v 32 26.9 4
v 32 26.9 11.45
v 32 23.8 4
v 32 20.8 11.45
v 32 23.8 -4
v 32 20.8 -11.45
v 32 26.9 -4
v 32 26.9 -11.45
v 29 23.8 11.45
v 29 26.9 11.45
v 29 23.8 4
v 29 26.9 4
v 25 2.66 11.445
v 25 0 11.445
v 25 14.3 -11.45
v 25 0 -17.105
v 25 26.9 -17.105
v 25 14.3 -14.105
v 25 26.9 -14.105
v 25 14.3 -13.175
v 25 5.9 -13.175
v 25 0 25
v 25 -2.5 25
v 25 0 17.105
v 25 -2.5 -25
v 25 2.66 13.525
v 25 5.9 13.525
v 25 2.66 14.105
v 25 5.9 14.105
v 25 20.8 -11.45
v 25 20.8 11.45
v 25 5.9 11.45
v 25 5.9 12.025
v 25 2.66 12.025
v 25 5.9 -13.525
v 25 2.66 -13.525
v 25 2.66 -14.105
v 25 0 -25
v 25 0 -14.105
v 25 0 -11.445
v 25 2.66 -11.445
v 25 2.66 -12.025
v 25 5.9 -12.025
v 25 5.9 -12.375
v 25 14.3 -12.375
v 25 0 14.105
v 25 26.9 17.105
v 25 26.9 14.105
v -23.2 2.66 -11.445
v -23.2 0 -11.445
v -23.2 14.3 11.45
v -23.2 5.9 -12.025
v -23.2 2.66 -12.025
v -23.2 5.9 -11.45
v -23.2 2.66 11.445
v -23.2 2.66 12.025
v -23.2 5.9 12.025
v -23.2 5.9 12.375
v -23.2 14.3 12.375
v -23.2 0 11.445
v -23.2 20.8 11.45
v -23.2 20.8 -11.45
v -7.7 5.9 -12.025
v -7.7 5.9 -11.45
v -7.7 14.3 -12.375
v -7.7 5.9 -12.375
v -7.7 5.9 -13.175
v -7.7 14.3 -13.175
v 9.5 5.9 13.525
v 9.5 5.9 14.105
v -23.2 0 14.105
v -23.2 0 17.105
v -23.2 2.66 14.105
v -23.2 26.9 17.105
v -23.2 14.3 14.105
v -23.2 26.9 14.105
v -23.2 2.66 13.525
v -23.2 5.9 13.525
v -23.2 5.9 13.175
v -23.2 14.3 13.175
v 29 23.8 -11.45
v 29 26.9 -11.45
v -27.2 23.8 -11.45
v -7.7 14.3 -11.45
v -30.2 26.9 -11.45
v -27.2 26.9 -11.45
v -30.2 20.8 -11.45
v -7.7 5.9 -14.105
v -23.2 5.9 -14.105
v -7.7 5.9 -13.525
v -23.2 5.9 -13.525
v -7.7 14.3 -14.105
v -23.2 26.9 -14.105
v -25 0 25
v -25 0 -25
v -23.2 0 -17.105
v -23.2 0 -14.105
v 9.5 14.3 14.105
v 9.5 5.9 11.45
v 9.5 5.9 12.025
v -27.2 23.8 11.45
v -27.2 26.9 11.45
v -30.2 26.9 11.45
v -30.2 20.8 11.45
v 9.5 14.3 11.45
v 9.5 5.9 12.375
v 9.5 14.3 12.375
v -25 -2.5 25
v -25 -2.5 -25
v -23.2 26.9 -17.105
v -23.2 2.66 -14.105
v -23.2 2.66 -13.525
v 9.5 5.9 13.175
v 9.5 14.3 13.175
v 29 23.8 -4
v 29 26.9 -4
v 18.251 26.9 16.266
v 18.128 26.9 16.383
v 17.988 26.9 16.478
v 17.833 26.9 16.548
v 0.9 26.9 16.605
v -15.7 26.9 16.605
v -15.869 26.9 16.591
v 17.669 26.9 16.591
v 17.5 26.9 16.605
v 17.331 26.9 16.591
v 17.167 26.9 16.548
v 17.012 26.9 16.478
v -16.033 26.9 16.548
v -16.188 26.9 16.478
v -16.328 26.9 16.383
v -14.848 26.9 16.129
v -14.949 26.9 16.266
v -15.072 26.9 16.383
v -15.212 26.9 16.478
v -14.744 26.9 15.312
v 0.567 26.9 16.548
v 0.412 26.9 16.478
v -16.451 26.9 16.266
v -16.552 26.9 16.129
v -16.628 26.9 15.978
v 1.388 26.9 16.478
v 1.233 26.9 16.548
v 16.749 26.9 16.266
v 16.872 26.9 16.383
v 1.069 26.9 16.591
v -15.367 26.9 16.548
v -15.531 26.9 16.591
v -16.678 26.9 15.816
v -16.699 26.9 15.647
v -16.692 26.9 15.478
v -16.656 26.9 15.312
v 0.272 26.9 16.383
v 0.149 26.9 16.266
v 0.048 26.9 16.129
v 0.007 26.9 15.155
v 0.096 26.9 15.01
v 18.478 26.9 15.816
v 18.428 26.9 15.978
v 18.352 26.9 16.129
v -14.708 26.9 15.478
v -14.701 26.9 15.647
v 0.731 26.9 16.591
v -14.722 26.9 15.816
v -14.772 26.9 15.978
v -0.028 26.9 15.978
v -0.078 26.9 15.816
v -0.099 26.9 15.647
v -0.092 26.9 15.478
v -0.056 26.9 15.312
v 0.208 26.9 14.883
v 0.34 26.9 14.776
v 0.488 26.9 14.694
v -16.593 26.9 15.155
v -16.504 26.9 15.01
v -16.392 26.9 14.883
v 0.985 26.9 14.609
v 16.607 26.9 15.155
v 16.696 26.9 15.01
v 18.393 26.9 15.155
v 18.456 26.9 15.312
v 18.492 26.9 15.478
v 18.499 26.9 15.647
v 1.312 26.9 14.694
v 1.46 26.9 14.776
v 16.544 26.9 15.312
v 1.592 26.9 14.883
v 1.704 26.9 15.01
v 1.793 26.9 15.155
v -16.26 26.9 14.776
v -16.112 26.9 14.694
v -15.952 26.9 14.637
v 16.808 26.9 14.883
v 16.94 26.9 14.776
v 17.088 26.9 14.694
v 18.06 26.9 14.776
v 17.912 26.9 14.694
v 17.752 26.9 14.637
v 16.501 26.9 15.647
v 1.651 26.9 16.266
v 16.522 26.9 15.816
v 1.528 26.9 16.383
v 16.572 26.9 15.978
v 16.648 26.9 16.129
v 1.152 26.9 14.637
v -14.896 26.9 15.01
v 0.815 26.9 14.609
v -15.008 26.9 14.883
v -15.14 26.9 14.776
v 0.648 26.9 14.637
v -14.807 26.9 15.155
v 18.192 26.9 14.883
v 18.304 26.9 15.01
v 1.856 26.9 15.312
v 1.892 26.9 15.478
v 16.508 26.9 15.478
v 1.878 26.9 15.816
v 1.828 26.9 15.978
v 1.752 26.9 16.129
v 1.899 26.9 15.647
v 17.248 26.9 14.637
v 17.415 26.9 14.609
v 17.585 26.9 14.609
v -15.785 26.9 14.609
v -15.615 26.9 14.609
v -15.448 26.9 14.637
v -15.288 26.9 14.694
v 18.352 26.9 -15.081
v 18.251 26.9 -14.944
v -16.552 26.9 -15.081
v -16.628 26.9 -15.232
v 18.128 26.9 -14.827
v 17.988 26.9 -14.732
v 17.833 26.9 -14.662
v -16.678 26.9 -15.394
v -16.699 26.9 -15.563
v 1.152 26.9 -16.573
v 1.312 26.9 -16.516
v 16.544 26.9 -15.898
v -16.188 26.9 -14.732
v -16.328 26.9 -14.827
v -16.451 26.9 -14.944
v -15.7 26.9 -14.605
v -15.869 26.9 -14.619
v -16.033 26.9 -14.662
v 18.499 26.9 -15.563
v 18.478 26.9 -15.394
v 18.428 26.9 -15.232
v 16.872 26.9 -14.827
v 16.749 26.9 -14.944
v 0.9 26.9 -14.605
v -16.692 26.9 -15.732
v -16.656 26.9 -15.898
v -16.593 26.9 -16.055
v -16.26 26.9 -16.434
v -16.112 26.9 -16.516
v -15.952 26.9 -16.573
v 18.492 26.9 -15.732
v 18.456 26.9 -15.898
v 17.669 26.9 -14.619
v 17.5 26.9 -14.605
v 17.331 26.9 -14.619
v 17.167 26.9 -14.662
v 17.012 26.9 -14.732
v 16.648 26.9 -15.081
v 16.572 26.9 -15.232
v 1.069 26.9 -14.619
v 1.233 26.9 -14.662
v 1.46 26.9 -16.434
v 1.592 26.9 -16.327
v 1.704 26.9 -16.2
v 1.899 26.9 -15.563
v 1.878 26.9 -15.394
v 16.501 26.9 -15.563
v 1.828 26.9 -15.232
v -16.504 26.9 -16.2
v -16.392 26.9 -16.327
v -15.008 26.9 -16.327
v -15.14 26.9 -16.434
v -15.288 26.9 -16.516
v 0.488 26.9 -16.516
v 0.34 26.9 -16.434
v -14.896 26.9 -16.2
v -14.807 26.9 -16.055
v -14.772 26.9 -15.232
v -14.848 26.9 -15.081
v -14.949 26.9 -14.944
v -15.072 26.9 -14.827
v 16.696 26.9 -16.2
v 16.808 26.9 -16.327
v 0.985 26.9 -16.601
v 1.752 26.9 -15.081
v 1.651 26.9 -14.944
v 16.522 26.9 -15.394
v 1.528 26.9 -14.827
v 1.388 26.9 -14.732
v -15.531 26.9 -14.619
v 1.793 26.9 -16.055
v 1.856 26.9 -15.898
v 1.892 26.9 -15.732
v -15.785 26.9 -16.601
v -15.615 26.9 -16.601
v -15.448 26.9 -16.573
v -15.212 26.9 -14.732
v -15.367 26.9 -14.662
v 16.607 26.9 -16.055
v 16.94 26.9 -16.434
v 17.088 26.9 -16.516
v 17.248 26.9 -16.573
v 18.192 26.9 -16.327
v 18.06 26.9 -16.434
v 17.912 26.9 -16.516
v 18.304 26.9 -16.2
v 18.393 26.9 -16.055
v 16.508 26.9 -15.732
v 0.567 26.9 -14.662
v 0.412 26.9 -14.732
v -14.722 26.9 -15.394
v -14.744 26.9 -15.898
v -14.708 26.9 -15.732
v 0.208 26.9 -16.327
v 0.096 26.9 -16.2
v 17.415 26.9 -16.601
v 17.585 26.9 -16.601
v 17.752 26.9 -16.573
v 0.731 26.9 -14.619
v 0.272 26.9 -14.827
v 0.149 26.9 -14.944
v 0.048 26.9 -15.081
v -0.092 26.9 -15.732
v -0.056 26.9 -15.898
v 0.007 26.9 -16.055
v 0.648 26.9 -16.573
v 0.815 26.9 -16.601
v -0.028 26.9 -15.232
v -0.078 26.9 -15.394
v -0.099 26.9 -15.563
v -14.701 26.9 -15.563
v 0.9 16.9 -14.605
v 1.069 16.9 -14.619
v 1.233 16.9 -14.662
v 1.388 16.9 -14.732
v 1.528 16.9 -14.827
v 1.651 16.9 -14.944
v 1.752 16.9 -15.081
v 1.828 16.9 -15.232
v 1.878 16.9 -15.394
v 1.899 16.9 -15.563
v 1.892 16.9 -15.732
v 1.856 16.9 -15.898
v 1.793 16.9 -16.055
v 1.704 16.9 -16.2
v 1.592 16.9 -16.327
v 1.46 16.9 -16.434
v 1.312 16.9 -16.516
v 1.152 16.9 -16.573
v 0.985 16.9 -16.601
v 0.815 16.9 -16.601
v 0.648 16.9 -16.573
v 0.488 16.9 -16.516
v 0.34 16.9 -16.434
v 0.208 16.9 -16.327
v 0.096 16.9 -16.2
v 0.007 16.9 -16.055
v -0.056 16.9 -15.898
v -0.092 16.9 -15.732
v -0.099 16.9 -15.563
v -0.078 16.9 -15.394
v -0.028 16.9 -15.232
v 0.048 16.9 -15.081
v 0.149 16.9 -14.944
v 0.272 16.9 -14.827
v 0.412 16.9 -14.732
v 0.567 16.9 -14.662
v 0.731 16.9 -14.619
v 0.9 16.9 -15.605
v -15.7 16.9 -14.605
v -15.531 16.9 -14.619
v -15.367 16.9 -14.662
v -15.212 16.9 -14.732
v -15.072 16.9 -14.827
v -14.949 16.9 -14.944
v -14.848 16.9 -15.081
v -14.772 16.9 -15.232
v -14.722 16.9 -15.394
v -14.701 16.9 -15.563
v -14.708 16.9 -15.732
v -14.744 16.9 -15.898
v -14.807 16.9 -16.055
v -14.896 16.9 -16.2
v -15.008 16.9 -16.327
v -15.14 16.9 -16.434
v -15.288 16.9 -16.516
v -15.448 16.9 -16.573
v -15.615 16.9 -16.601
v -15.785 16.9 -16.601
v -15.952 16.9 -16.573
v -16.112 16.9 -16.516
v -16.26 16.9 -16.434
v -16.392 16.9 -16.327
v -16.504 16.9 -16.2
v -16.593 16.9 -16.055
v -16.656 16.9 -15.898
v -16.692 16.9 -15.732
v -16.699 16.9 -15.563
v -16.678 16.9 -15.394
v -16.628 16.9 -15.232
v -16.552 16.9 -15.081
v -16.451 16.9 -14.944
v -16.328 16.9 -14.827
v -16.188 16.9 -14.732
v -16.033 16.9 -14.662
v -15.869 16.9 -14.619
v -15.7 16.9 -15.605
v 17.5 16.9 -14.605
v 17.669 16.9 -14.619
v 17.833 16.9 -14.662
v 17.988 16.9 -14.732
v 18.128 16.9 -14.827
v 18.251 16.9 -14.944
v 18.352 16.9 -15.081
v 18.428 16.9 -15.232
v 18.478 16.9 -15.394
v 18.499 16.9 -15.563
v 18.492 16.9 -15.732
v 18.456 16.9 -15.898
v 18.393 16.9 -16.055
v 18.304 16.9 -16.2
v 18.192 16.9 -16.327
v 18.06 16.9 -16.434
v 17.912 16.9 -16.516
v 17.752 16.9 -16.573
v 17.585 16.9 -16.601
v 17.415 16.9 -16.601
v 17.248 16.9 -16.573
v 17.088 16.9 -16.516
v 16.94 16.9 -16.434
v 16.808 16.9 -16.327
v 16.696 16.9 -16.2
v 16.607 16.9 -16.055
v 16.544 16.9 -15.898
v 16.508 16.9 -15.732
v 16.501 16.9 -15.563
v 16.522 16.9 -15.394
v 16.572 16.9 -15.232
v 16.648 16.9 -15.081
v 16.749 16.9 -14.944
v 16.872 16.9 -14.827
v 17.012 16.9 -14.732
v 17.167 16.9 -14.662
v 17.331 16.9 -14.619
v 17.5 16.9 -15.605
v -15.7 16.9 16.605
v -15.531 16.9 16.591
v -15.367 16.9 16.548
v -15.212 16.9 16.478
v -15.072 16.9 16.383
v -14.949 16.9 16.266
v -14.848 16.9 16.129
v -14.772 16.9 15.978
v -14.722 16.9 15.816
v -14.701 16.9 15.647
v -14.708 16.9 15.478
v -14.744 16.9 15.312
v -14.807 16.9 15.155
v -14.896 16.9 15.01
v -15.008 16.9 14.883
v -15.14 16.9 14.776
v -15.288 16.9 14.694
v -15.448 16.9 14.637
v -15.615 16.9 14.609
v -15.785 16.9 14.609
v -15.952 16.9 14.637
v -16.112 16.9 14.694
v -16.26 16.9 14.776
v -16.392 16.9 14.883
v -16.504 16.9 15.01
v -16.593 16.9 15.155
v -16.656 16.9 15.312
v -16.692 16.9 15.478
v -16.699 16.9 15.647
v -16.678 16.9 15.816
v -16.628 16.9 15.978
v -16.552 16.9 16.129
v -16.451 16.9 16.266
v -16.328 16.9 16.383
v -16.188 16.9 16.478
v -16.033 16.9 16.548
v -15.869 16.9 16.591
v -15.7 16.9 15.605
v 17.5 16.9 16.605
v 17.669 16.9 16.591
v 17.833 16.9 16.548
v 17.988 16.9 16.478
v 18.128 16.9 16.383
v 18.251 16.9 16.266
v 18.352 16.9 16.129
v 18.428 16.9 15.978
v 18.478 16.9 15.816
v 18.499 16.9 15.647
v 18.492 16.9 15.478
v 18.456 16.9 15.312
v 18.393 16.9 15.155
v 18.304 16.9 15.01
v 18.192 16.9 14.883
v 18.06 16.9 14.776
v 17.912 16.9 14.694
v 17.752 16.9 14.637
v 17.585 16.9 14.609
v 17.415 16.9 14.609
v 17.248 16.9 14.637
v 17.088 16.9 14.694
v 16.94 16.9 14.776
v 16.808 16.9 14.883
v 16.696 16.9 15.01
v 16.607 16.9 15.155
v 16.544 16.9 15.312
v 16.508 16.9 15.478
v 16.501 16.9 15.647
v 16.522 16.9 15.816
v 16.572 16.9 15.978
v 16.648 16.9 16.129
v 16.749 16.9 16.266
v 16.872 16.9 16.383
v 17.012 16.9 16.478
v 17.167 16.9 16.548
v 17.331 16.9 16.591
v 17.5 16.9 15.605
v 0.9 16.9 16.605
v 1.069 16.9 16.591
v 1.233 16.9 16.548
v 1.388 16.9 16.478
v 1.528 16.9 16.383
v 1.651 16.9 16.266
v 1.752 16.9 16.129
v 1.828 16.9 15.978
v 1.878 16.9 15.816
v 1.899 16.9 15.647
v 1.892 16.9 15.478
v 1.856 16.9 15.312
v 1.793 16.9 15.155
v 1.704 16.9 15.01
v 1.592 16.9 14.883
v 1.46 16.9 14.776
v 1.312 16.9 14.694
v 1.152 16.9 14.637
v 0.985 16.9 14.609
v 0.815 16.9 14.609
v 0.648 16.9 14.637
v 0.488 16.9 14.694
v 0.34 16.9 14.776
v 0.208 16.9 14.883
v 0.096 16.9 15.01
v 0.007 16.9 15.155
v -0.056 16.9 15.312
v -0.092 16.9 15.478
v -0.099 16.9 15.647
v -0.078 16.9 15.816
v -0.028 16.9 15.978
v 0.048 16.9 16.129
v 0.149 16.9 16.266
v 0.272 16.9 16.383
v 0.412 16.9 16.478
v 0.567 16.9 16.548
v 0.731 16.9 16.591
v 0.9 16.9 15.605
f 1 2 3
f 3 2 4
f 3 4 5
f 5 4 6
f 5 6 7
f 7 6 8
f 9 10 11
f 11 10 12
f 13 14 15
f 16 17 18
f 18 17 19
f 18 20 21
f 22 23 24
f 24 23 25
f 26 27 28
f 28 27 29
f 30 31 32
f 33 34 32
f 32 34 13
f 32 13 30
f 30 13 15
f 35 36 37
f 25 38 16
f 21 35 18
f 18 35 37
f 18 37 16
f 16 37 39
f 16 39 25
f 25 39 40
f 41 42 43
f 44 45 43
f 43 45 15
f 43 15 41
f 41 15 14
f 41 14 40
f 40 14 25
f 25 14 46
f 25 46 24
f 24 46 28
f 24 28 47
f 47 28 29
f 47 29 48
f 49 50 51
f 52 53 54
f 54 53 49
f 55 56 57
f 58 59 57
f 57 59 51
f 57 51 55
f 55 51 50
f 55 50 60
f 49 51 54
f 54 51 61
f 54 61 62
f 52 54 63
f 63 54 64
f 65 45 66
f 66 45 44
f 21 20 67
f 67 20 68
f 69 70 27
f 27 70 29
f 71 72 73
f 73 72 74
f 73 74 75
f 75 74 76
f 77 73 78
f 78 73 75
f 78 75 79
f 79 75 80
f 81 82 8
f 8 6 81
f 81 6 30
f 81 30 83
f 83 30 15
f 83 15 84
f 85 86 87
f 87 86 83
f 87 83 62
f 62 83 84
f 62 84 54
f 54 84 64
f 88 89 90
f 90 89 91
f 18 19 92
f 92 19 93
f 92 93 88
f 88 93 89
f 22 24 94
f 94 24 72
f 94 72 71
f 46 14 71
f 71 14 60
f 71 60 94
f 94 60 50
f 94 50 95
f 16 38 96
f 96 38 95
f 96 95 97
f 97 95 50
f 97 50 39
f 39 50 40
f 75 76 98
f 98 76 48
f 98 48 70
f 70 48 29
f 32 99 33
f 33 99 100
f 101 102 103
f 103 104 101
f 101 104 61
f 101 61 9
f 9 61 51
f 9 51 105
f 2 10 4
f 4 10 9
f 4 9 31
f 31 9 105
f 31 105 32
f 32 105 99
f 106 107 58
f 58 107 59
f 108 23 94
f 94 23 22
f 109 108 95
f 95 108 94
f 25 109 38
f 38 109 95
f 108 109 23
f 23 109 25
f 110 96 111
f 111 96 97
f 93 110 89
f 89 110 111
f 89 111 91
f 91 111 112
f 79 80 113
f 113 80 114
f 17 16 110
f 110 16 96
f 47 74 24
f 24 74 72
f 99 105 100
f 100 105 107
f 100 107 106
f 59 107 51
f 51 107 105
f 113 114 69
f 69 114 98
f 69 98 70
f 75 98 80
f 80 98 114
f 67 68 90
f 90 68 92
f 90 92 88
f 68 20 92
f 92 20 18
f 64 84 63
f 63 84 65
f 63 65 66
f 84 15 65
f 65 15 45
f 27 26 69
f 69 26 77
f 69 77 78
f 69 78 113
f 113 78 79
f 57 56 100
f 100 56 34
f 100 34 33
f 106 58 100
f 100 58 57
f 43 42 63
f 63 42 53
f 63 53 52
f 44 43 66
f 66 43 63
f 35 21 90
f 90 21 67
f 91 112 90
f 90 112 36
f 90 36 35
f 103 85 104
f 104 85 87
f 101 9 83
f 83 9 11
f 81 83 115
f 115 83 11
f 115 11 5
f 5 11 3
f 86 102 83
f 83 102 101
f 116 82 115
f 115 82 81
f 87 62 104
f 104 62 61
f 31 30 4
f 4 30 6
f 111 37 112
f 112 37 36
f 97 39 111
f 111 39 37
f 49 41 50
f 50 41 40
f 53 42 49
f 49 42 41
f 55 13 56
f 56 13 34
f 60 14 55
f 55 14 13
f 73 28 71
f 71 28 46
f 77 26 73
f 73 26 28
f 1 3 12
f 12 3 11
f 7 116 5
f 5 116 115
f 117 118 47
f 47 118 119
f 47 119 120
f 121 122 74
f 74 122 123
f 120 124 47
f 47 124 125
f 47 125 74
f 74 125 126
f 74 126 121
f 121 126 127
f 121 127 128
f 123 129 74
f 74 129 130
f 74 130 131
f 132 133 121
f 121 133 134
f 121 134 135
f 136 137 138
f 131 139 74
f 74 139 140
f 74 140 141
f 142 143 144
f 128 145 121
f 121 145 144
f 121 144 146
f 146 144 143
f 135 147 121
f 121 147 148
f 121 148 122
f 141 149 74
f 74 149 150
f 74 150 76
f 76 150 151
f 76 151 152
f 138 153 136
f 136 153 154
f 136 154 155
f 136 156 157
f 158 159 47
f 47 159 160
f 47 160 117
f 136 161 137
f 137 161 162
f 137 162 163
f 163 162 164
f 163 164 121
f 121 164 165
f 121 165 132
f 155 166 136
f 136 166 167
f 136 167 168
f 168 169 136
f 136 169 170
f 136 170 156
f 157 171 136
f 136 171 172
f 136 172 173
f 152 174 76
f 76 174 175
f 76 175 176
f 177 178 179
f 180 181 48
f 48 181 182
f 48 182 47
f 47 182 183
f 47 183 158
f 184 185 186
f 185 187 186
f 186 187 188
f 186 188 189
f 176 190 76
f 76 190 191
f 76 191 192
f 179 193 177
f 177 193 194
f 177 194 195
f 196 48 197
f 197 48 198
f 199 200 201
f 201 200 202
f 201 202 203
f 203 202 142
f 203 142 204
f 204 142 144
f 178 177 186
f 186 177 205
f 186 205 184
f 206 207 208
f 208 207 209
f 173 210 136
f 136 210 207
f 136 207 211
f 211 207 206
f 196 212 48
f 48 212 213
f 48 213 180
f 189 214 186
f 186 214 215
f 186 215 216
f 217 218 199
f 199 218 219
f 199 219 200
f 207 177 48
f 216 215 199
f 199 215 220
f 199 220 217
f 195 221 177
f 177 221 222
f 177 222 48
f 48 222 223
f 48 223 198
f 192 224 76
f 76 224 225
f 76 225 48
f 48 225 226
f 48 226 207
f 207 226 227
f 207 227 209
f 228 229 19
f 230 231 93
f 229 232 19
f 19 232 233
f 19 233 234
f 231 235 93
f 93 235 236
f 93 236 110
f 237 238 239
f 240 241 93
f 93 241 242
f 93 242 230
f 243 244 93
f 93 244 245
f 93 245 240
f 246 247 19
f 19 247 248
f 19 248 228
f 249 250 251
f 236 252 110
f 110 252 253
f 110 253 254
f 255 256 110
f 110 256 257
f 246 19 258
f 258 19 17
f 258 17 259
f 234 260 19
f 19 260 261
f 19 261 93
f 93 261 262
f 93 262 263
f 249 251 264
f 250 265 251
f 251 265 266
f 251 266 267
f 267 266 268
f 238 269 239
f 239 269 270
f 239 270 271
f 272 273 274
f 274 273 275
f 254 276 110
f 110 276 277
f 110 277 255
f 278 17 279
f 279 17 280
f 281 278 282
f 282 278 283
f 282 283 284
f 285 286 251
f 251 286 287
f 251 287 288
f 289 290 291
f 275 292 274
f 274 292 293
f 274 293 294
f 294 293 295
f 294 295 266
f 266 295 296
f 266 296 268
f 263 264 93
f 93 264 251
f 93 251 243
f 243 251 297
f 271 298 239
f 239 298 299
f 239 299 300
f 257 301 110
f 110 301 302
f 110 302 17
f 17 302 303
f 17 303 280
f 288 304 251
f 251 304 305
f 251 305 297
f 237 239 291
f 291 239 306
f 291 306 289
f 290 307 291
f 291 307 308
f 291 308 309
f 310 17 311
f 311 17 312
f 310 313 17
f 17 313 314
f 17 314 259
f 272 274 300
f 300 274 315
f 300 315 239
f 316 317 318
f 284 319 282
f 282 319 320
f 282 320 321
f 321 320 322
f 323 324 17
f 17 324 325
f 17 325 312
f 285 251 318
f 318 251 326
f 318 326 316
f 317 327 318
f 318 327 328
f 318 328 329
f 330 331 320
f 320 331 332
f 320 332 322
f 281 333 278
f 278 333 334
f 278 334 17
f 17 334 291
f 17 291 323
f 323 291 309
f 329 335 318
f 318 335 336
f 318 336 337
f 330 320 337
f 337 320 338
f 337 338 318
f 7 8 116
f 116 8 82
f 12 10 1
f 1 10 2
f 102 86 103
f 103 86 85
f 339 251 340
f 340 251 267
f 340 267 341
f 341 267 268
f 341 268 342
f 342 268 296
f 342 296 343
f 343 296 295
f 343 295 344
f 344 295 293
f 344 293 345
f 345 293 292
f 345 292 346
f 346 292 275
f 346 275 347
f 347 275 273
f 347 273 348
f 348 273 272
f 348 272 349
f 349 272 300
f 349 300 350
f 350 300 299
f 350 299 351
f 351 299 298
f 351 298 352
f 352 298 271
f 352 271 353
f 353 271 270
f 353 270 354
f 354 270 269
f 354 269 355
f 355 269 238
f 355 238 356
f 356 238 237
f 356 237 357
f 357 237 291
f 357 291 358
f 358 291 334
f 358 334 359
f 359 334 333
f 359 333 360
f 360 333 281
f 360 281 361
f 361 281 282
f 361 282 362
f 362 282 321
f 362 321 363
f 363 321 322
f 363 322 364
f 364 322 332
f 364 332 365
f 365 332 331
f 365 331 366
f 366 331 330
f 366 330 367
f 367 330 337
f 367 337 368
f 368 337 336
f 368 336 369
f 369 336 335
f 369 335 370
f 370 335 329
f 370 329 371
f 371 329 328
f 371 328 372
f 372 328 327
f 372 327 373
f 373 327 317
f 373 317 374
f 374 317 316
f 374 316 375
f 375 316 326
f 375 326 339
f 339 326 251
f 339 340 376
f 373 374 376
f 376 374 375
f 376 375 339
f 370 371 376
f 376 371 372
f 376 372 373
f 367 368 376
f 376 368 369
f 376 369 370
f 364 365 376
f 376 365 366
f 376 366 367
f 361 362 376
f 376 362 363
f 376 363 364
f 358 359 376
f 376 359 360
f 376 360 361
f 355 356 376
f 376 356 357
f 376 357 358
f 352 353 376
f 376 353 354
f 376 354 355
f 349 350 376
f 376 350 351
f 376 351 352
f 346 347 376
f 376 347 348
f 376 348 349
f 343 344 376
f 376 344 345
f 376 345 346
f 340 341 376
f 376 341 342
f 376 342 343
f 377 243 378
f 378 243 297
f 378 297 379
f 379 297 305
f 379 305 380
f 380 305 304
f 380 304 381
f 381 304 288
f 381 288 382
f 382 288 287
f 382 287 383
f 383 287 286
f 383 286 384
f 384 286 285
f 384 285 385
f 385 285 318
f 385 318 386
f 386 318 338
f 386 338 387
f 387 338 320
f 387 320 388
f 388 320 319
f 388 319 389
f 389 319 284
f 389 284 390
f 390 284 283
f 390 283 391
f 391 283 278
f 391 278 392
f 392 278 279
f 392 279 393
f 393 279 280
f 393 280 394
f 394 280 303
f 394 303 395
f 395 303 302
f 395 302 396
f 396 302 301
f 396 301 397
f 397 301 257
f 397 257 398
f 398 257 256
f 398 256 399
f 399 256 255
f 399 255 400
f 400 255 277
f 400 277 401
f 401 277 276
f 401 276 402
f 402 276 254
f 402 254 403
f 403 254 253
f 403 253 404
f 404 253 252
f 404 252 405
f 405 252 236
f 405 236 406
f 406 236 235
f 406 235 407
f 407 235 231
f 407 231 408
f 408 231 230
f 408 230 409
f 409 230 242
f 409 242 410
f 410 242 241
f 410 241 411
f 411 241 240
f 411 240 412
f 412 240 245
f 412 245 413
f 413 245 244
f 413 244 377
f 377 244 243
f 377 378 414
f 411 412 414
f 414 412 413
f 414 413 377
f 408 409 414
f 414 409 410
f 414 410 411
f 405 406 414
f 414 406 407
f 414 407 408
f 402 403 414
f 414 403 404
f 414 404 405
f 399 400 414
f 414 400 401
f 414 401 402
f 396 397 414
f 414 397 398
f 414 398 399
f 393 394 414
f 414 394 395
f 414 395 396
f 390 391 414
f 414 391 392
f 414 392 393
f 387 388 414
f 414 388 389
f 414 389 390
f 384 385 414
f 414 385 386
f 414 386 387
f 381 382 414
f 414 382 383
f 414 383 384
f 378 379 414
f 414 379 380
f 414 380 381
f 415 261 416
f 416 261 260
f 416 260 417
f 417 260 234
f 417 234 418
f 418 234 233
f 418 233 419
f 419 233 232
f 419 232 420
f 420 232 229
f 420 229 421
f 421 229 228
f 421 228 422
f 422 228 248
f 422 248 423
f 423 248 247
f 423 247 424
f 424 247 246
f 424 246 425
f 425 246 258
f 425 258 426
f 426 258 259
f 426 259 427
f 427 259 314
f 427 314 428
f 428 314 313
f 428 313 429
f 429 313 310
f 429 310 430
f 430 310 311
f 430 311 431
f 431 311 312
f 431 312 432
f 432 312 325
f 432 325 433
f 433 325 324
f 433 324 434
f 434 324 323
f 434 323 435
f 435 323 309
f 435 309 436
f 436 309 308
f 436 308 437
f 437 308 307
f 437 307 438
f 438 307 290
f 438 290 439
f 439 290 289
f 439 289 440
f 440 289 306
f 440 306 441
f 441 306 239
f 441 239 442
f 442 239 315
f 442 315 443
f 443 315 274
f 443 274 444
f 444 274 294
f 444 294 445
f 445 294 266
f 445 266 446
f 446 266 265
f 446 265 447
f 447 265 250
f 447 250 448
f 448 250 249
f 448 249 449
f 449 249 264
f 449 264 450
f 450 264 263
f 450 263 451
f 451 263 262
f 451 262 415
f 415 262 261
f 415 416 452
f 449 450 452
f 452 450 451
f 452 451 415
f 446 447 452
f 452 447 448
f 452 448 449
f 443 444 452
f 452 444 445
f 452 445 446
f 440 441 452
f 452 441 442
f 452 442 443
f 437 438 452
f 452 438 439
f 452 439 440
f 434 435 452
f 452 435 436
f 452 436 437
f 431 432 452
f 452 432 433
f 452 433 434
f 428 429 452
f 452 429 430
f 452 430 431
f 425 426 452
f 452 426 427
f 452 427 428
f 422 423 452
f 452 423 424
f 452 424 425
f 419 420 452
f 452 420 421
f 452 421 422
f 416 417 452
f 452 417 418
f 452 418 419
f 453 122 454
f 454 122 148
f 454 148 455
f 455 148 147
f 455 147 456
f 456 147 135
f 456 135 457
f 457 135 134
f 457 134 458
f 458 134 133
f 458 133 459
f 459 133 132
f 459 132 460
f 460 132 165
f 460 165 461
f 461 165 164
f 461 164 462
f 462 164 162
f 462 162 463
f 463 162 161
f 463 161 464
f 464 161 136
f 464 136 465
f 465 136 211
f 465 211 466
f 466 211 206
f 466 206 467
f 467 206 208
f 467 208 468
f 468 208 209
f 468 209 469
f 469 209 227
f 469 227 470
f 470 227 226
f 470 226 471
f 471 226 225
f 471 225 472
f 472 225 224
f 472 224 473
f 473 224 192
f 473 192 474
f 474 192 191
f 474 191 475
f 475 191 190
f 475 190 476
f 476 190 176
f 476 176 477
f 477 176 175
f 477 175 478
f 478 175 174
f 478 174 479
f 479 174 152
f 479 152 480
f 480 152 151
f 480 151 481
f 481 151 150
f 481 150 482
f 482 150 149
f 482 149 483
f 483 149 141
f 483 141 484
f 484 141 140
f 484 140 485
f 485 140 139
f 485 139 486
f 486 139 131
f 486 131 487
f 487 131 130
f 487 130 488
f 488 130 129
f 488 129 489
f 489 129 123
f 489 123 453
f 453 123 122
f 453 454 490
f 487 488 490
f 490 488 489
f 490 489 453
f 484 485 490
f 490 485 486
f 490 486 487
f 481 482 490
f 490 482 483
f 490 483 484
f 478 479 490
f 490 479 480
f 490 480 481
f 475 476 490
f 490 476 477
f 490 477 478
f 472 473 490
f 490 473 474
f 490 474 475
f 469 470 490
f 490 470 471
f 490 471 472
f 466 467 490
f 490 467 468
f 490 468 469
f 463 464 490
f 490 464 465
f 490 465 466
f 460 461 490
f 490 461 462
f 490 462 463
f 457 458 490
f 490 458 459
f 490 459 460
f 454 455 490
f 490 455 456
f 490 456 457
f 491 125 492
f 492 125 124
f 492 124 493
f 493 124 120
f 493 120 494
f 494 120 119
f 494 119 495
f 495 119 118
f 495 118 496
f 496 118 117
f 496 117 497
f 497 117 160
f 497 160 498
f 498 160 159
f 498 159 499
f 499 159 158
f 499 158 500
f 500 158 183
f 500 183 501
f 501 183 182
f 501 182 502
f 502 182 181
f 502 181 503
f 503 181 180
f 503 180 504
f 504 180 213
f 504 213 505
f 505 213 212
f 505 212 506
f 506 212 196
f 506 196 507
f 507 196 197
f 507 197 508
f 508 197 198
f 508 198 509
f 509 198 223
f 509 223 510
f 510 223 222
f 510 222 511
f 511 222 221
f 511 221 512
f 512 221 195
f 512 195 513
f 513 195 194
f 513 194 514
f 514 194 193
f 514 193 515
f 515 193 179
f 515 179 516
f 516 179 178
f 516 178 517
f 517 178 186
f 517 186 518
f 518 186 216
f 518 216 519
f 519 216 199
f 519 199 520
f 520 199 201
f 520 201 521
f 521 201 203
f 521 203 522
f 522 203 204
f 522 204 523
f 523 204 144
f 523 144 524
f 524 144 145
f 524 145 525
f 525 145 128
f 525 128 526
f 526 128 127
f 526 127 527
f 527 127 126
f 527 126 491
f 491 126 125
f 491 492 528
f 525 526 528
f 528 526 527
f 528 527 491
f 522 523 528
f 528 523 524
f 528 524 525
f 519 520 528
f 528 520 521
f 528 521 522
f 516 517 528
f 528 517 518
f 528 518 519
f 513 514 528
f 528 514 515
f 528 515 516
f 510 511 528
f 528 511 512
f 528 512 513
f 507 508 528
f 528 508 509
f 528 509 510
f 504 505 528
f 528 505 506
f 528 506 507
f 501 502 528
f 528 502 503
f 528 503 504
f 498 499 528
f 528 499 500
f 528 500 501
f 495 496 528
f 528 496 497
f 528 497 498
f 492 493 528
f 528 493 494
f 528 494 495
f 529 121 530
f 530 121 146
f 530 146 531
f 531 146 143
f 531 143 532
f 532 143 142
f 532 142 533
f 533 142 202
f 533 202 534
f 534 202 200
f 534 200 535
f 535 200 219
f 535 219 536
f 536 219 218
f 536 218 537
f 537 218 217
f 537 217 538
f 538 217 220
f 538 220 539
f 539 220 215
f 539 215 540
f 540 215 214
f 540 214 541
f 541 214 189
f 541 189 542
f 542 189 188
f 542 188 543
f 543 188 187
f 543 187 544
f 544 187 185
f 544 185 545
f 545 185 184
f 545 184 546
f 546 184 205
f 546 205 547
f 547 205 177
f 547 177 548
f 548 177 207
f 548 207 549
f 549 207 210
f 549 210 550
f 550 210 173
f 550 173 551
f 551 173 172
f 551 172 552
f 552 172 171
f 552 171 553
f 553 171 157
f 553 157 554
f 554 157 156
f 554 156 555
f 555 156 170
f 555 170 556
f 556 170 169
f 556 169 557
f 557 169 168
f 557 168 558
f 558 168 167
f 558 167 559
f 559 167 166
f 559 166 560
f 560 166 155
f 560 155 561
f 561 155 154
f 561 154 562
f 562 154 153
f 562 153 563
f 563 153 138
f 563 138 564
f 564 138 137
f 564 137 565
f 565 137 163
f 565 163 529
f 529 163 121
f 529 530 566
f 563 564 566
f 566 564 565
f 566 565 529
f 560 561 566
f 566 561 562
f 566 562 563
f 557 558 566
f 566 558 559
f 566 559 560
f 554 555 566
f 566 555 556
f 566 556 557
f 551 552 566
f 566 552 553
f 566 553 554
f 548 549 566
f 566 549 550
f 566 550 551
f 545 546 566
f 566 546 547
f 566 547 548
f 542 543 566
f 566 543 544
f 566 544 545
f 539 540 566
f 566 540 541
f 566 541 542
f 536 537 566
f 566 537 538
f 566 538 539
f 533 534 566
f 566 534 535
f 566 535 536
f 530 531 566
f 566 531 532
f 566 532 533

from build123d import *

# Parameters (mm, degrees)
SKETCH1_W            = 46.4
SKETCH1_H            = 24.75
BOSS_EXTRUDE1_DEPTH  = 5.9
BOSS_EXTRUDE2_DEPTH  = 2.5
SKETCH3_W            = 50
SKETCH3_H            = 50
BOSS_EXTRUDE3_DEPTH  = 2.5
SKETCH4_W            = 46.4
SKETCH4_H            = 0.93
BOSS_EXTRUDE4_DEPTH  = 5.9
SKETCH5_W            = 46.4
SKETCH5_H            = 0.93
BOSS_EXTRUDE5_DEPTH  = 5.9
SKETCH6_W            = 46.4
SKETCH6_H            = 3
BOSS_EXTRUDE6_DEPTH  = 8.4
SKETCH7_W            = 46.4
SKETCH7_H            = 3
BOSS_EXTRUDE7_DEPTH  = 8.4
SKETCH8_W            = 46.4
SKETCH8_H            = 22.9
BOSS_EXTRUDE8_DEPTH  = 8.4
SKETCH9_W            = 46.4
SKETCH9_H            = 3
BOSS_EXTRUDE9_DEPTH  = 8.4
SKETCH10_W           = 22.9
SKETCH10_H           = 10.9
BOSS_EXTRUDE10_DEPTH = 1.8
SKETCH11_W           = 0.93
SKETCH11_H           = 5.9
BOSS_EXTRUDE11_DEPTH = 1.8
SKETCH12_W           = 32.7
SKETCH12_H           = 0.925
SKETCH12_H_2         = 0.93
BOSS_EXTRUDE12_DEPTH = 8.4
SKETCH13_W           = 0.93
SKETCH13_H           = 5.9
BOSS_EXTRUDE13_DEPTH = 1.8
SKETCH14_W           = 48.2
SKETCH14_H           = 3
BOSS_EXTRUDE14_DEPTH = 8.4
SKETCH15_W           = 32.7
SKETCH15_H           = 0.93
SKETCH15_H_2         = 0.925
BOSS_EXTRUDE15_DEPTH = 8.4
SKETCH16_W           = 0.35
SKETCH16_H           = 5.9
CUT_EXTRUDE1_DEPTH   = 59.371568422
SKETCH18_W           = 0.35
SKETCH18_H           = 5.9
CUT_EXTRUDE2_DEPTH   = 59.371568422
SKETCH20_W           = 22.9
SKETCH20_H           = 2.5
BOSS_EXTRUDE17_DEPTH = 4
SKETCH22_W           = 22.9
SKETCH22_H           = 2.5
BOSS_EXTRUDE19_DEPTH = 3
SKETCH23_W           = 3
SKETCH23_H           = 22.9
BOSS_EXTRUDE20_DEPTH = 1.5
SKETCH24_W           = 22.9
SKETCH24_H           = 2.5
BOSS_EXTRUDE21_DEPTH = 7
SKETCH25_W           = 3
SKETCH25_H           = 22.9
BOSS_EXTRUDE22_DEPTH = 3
SKETCH27_W           = 48.2
SKETCH27_H           = 3
BOSS_EXTRUDE23_DEPTH = 7
SKETCH28_W           = 56.2
SKETCH28_H           = 22.9
BOSS_EXTRUDE24_DEPTH = 7
SKETCH29_W           = 3
SKETCH29_H           = 22.9
BOSS_EXTRUDE25_DEPTH = 7
SKETCH30_W           = 3
SKETCH30_H           = 22.9
BOSS_EXTRUDE26_DEPTH = 7
SKETCH31_W           = 7
SKETCH31_H           = 6.5
CUT_EXTRUDE3_DEPTH   = 56.415182938
SKETCH32_W           = 7
SKETCH32_H           = 6.5
CUT_EXTRUDE4_DEPTH   = 56.415182938
SKETCH33_W           = 2.66
SKETCH33_H           = 2.66
CUT_EXTRUDE5_DEPTH   = 67.259188042
SKETCH34_W           = 2.66
SKETCH34_H           = 2.66
CUT_EXTRUDE6_DEPTH   = 67.259188042
SKETCH35_W           = 3
SKETCH35_H           = 8
CUT_EXTRUDE7_DEPTH   = 3
SKETCH36_W           = 3
SKETCH36_H           = 22.9
BOSS_EXTRUDE27_DEPTH = 1.5
SKETCH38_W           = 48.2
SKETCH38_H           = 3
BOSS_EXTRUDE28_DEPTH = 3.1
SKETCH39_W           = 48.2
SKETCH39_H           = 3
BOSS_EXTRUDE29_DEPTH = 3.1
SKETCH40_W           = 3
SKETCH40_H           = 7.45
BOSS_EXTRUDE30_DEPTH = 0.1
SKETCH41_W           = 3
SKETCH41_H           = 22.9
BOSS_EXTRUDE31_DEPTH = 0.1
SKETCH42_R           = 1
CUT_EXTRUDE8_DEPTH   = 10


with BuildPart() as part:
    # Sketch1 → Boss-Extrude1 (new body)
    with BuildSketch(Plane(origin=(0, 0, 0), x_dir=(1, 0, 0), z_dir=(0, 1, 0))):
        Rectangle(SKETCH1_W, SKETCH1_H)
    extrude(amount=BOSS_EXTRUDE1_DEPTH)

    # Sketch2 → Boss-Extrude2 (add)
    with BuildSketch(Plane(origin=(0, 5.9, 0), x_dir=(1, 0, 0), z_dir=(0, 1, 0))):
        Polygon((23.2, -11.45), (23.2, 0), (23.2, 11.45), (-23.2, 11.45), (-23.2, -11.45), align=None)
    extrude(amount=BOSS_EXTRUDE2_DEPTH)

    # Sketch3 → Boss-Extrude3 (add)
    with BuildSketch(Plane.XZ):
        Rectangle(SKETCH3_W, SKETCH3_H)
    extrude(amount=BOSS_EXTRUDE3_DEPTH)

    # Sketch4 → Boss-Extrude4 (add)
    with BuildSketch(Plane(origin=(0, 0, 0), x_dir=(1, 0, 0), z_dir=(0, 1, 0))):
        with Locations((0, 13.64)):
            Rectangle(SKETCH4_W, SKETCH4_H)
    extrude(amount=BOSS_EXTRUDE4_DEPTH)

    # Sketch5 → Boss-Extrude5 (add)
    with BuildSketch(Plane(origin=(0, 0, 0), x_dir=(1, 0, 0), z_dir=(0, 1, 0))):
        with Locations((0, -13.64)):
            Rectangle(SKETCH5_W, SKETCH5_H)
    extrude(amount=BOSS_EXTRUDE5_DEPTH)

    # Sketch6 → Boss-Extrude6 (add)
    with BuildSketch(Plane(origin=(0, 0, 0), x_dir=(1, 0, 0), z_dir=(0, 1, 0))):
        with Locations((0, 15.605)):
            Rectangle(SKETCH6_W, SKETCH6_H)
    extrude(amount=BOSS_EXTRUDE6_DEPTH)

    # Sketch7 → Boss-Extrude7 (add)
    with BuildSketch(Plane(origin=(0, 0, 0), x_dir=(1, 0, 0), z_dir=(0, 1, 0))):
        with Locations((0, -15.605)):
            Rectangle(SKETCH7_W, SKETCH7_H)
    extrude(amount=BOSS_EXTRUDE7_DEPTH)

    # Sketch8 → Boss-Extrude8 (add)
    with BuildSketch(Plane(origin=(0, 8.4, 0), x_dir=(1, 0, 0), z_dir=(0, 1, 0))):
        Rectangle(SKETCH8_W, SKETCH8_H)
    extrude(amount=BOSS_EXTRUDE8_DEPTH)

    # Sketch9 → Boss-Extrude9 (add)
    with BuildSketch(Plane(origin=(0, 8.4, 0), x_dir=(1, 0, 0), z_dir=(0, 1, 0))):
        with Locations((0, -15.605)):
            Rectangle(SKETCH9_W, SKETCH9_H)
    extrude(amount=BOSS_EXTRUDE9_DEPTH)

    # Sketch10 → Boss-Extrude10 (add)
    with BuildSketch(Plane(origin=(23.2, 0, 0), x_dir=(0, 0, -1), z_dir=(1, 0, 0))):
        with Locations((0, 11.35)):
            Rectangle(SKETCH10_W, SKETCH10_H)
        Polygon((-11.45, 5.9), (11.45, 5.9), (12.375, 5.9), (12.375, 0), (-12.375, 0), (-12.375, 5.9), align=None)
    extrude(amount=BOSS_EXTRUDE10_DEPTH)

    # Sketch11 → Boss-Extrude11 (add)
    with BuildSketch(Plane(origin=(23.2, 0, 0), x_dir=(0, 0, -1), z_dir=(1, 0, 0))):
        Polygon((-14.105, 16.8), (-17.105, 16.8), (-17.105, 0), (-14.105, 0), (-14.105, 5.9), align=None)
        with Locations((-13.64, 2.95)):
            Rectangle(SKETCH11_W, SKETCH11_H)
    extrude(amount=BOSS_EXTRUDE11_DEPTH)

    # Sketch12 → Boss-Extrude12 (add)
    with BuildSketch(Plane(origin=(0, 5.9, 0), x_dir=(1, 0, 0), z_dir=(0, 1, 0))):
        with Locations((-6.85, -11.9125)):
            Rectangle(SKETCH12_W, SKETCH12_H)
        with Locations((-6.85, -13.64)):
            Rectangle(SKETCH12_W, SKETCH12_H_2)
    extrude(amount=BOSS_EXTRUDE12_DEPTH)

    # Sketch13 → Boss-Extrude13 (add)
    with BuildSketch(Plane(origin=(23.2, 0, 0), x_dir=(0, 0, -1), z_dir=(1, 0, 0))):
        Polygon((17.105, 0), (17.105, 8.4), (14.105, 8.4), (14.105, 5.9), (14.105, 0), align=None)
        with Locations((13.64, 2.95)):
            Rectangle(SKETCH13_W, SKETCH13_H)
    extrude(amount=BOSS_EXTRUDE13_DEPTH)

    # Sketch14 → Boss-Extrude14 (add)
    with BuildSketch(Plane(origin=(0, 8.4, 0), x_dir=(1, 0, 0), z_dir=(0, 1, 0))):
        with Locations((0.9, 15.605)):
            Rectangle(SKETCH14_W, SKETCH14_H)
    extrude(amount=BOSS_EXTRUDE14_DEPTH)

    # Sketch15 → Boss-Extrude15 (add)
    with BuildSketch(Plane(origin=(0, 5.9, 0), x_dir=(1, 0, 0), z_dir=(0, 1, 0))):
        with Locations((8.65, 13.64)):
            Rectangle(SKETCH15_W, SKETCH15_H)
        with Locations((8.65, 11.9125)):
            Rectangle(SKETCH15_W, SKETCH15_H_2)
    extrude(amount=BOSS_EXTRUDE15_DEPTH)

    # Sketch16 → Cut-Extrude1 (cut, through all)
    with BuildSketch(Plane(origin=(25, 0, 0), x_dir=(0, 0, -1), z_dir=(1, 0, 0))):
        with Locations((-12.2, 2.95)):
            Rectangle(SKETCH16_W, SKETCH16_H)
        with Locations((-13.35, 2.95)):
            Rectangle(SKETCH16_W, SKETCH16_H)
    extrude(amount=-CUT_EXTRUDE1_DEPTH, mode=Mode.SUBTRACT)

    # Sketch18 → Cut-Extrude2 (cut, through all)
    with BuildSketch(Plane(origin=(25, 0, 0), x_dir=(0, 0, -1), z_dir=(1, 0, 0))):
        with Locations((12.2, 2.95)):
            Rectangle(SKETCH18_W, SKETCH18_H)
        with Locations((13.35, 2.95)):
            Rectangle(SKETCH18_W, SKETCH18_H)
    extrude(amount=-CUT_EXTRUDE2_DEPTH, mode=Mode.SUBTRACT)

    # Sketch20 → Boss-Extrude17 (add)
    with BuildSketch(Plane.ZY.offset(23.2)):
        with Locations((0, 15.55)):
            Rectangle(SKETCH20_W, SKETCH20_H)
    extrude(amount=BOSS_EXTRUDE17_DEPTH)

    # Sketch22 → Boss-Extrude19 (add)
    with BuildSketch(Plane.ZY.offset(27.2)):
        with Locations((0, 15.55)):
            Rectangle(SKETCH22_W, SKETCH22_H)
    extrude(amount=BOSS_EXTRUDE19_DEPTH)

    # Sketch23 → Boss-Extrude20 (add)
    with BuildSketch(Plane(origin=(0, 16.8, 0), x_dir=(1, 0, 0), z_dir=(0, 1, 0))):
        with Locations((-28.7, 0)):
            Rectangle(SKETCH23_W, SKETCH23_H)
    extrude(amount=BOSS_EXTRUDE20_DEPTH)

    # Sketch24 → Boss-Extrude21 (add)
    with BuildSketch(Plane(origin=(25, 0, 0), x_dir=(0, 0, -1), z_dir=(1, 0, 0))):
        with Locations((0, 15.55)):
            Rectangle(SKETCH24_W, SKETCH24_H)
    extrude(amount=BOSS_EXTRUDE21_DEPTH)

    # Sketch25 → Boss-Extrude22 (add)
    with BuildSketch(Plane(origin=(0, 16.8, 0), x_dir=(1, 0, 0), z_dir=(0, 1, 0))):
        with Locations((30.5, 0)):
            Rectangle(SKETCH25_W, SKETCH25_H)
    extrude(amount=BOSS_EXTRUDE22_DEPTH)

    # Sketch27 → Boss-Extrude23 (add)
    with BuildSketch(Plane(origin=(0, 16.8, 0), x_dir=(1, 0, 0), z_dir=(0, 1, 0))):
        with Locations((0.9, 15.605)):
            Rectangle(SKETCH27_W, SKETCH27_H)
        with Locations((0.9, -15.605)):
            Rectangle(SKETCH27_W, SKETCH27_H)
    extrude(amount=BOSS_EXTRUDE23_DEPTH)

    # Sketch28 → Boss-Extrude24 (add)
    with BuildSketch(Plane(origin=(0, 16.8, 0), x_dir=(1, 0, 0), z_dir=(0, 1, 0))):
        with Locations((0.9, 0)):
            Rectangle(SKETCH28_W, SKETCH28_H)
    extrude(amount=BOSS_EXTRUDE24_DEPTH)

    # Sketch29 → Boss-Extrude25 (add)
    with BuildSketch(Plane(origin=(0, 18.3, 0), x_dir=(1, 0, 0), z_dir=(0, 1, 0))):
        with Locations((-28.7, 0)):
            Rectangle(SKETCH29_W, SKETCH29_H)
    extrude(amount=BOSS_EXTRUDE25_DEPTH)

    # Sketch30 → Boss-Extrude26 (add)
    with BuildSketch(Plane(origin=(0, 19.8, 0), x_dir=(1, 0, 0), z_dir=(0, 1, 0))):
        with Locations((30.5, 0)):
            Rectangle(SKETCH30_W, SKETCH30_H)
    extrude(amount=BOSS_EXTRUDE26_DEPTH)

    # Sketch31 → Cut-Extrude3 (cut, through all)
    with BuildSketch(Plane(origin=(0, 0, -11.45), x_dir=(-1, 0, 0), z_dir=(0, 0, -1))):
        with Locations((26.7, 17.55)):
            Rectangle(SKETCH31_W, SKETCH31_H)
    extrude(amount=-CUT_EXTRUDE3_DEPTH, mode=Mode.SUBTRACT)

    # Sketch32 → Cut-Extrude4 (cut, through all)
    with BuildSketch(Plane.XY.offset(11.45)):
        with Locations((28.5, 17.55)):
            Rectangle(SKETCH32_W, SKETCH32_H)
    extrude(amount=-CUT_EXTRUDE4_DEPTH, mode=Mode.SUBTRACT)

    # Sketch33 → Cut-Extrude5 (cut, through all)
    with BuildSketch(Plane.ZY.offset(23.2)):
        with Locations((-12.775, 1.33)):
            Rectangle(SKETCH33_W, SKETCH33_H)
    extrude(amount=-CUT_EXTRUDE5_DEPTH, mode=Mode.SUBTRACT)

    # Sketch34 → Cut-Extrude6 (cut, through all)
    with BuildSketch(Plane.ZY.offset(23.2)):
        with Locations((12.775, 1.33)):
            Rectangle(SKETCH34_W, SKETCH34_H)
    extrude(amount=-CUT_EXTRUDE6_DEPTH, mode=Mode.SUBTRACT)

    # Sketch35 → Cut-Extrude7 (cut)
    with BuildSketch(Plane(origin=(0, 26.8, 0), x_dir=(1, 0, 0), z_dir=(0, 1, 0))):
        with Locations((30.5, 0)):
            Rectangle(SKETCH35_W, SKETCH35_H)
    extrude(amount=-CUT_EXTRUDE7_DEPTH, mode=Mode.SUBTRACT)

    # Sketch36 → Boss-Extrude27 (add)
    with BuildSketch(Plane(origin=(0, 25.3, 0), x_dir=(1, 0, 0), z_dir=(0, 1, 0))):
        with Locations((-28.7, 0)):
            Rectangle(SKETCH36_W, SKETCH36_H)
    extrude(amount=BOSS_EXTRUDE27_DEPTH)

    # Sketch38 → Boss-Extrude28 (add)
    with BuildSketch(Plane(origin=(0, 23.8, 0), x_dir=(1, 0, 0), z_dir=(0, 1, 0))):
        with Locations((0.9, -15.605)):
            Rectangle(SKETCH38_W, SKETCH38_H)
    extrude(amount=BOSS_EXTRUDE28_DEPTH)

    # Sketch39 → Boss-Extrude29 (add)
    with BuildSketch(Plane(origin=(0, 23.8, 0), x_dir=(1, 0, 0), z_dir=(0, 1, 0))):
        with Locations((0.9, 15.605)):
            Rectangle(SKETCH39_W, SKETCH39_H)
    extrude(amount=BOSS_EXTRUDE29_DEPTH)

    # Sketch40 → Boss-Extrude30 (add)
    with BuildSketch(Plane(origin=(0, 26.8, 0), x_dir=(1, 0, 0), z_dir=(0, 1, 0))):
        with Locations((30.5, 7.725)):
            Rectangle(SKETCH40_W, SKETCH40_H)
        with Locations((30.5, -7.725)):
            Rectangle(SKETCH40_W, SKETCH40_H)
    extrude(amount=BOSS_EXTRUDE30_DEPTH)

    # Sketch41 → Boss-Extrude31 (add)
    with BuildSketch(Plane(origin=(0, 26.8, 0), x_dir=(1, 0, 0), z_dir=(0, 1, 0))):
        with Locations((-28.7, 0)):
            Rectangle(SKETCH41_W, SKETCH41_H)
    extrude(amount=BOSS_EXTRUDE31_DEPTH)

    # Sketch42 → Cut-Extrude8 (cut)
    with BuildSketch(Plane(origin=(0, 26.9, 0), x_dir=(1, 0, 0), z_dir=(0, 1, 0))):
        with Locations(Location((-15.7, -15.605, 0), (0, 0, 270))):
            Circle(SKETCH42_R)
        with Locations(Location((-15.7, 15.605, 0), (0, 0, 270))):
            Circle(SKETCH42_R)
        with Locations(Location((17.5, -15.605, 0), (0, 0, 270))):
            Circle(SKETCH42_R)
        with Locations(Location((17.5, 15.605, 0), (0, 0, 270))):
            Circle(SKETCH42_R)
        with Locations(Location((0.9, -15.605, 0), (0, 0, 270))):
            Circle(SKETCH42_R)
        with Locations(Location((0.9, 15.605, 0), (0, 0, 270))):
            Circle(SKETCH42_R)
    extrude(amount=-CUT_EXTRUDE8_DEPTH, mode=Mode.SUBTRACT)


solid = part.part
